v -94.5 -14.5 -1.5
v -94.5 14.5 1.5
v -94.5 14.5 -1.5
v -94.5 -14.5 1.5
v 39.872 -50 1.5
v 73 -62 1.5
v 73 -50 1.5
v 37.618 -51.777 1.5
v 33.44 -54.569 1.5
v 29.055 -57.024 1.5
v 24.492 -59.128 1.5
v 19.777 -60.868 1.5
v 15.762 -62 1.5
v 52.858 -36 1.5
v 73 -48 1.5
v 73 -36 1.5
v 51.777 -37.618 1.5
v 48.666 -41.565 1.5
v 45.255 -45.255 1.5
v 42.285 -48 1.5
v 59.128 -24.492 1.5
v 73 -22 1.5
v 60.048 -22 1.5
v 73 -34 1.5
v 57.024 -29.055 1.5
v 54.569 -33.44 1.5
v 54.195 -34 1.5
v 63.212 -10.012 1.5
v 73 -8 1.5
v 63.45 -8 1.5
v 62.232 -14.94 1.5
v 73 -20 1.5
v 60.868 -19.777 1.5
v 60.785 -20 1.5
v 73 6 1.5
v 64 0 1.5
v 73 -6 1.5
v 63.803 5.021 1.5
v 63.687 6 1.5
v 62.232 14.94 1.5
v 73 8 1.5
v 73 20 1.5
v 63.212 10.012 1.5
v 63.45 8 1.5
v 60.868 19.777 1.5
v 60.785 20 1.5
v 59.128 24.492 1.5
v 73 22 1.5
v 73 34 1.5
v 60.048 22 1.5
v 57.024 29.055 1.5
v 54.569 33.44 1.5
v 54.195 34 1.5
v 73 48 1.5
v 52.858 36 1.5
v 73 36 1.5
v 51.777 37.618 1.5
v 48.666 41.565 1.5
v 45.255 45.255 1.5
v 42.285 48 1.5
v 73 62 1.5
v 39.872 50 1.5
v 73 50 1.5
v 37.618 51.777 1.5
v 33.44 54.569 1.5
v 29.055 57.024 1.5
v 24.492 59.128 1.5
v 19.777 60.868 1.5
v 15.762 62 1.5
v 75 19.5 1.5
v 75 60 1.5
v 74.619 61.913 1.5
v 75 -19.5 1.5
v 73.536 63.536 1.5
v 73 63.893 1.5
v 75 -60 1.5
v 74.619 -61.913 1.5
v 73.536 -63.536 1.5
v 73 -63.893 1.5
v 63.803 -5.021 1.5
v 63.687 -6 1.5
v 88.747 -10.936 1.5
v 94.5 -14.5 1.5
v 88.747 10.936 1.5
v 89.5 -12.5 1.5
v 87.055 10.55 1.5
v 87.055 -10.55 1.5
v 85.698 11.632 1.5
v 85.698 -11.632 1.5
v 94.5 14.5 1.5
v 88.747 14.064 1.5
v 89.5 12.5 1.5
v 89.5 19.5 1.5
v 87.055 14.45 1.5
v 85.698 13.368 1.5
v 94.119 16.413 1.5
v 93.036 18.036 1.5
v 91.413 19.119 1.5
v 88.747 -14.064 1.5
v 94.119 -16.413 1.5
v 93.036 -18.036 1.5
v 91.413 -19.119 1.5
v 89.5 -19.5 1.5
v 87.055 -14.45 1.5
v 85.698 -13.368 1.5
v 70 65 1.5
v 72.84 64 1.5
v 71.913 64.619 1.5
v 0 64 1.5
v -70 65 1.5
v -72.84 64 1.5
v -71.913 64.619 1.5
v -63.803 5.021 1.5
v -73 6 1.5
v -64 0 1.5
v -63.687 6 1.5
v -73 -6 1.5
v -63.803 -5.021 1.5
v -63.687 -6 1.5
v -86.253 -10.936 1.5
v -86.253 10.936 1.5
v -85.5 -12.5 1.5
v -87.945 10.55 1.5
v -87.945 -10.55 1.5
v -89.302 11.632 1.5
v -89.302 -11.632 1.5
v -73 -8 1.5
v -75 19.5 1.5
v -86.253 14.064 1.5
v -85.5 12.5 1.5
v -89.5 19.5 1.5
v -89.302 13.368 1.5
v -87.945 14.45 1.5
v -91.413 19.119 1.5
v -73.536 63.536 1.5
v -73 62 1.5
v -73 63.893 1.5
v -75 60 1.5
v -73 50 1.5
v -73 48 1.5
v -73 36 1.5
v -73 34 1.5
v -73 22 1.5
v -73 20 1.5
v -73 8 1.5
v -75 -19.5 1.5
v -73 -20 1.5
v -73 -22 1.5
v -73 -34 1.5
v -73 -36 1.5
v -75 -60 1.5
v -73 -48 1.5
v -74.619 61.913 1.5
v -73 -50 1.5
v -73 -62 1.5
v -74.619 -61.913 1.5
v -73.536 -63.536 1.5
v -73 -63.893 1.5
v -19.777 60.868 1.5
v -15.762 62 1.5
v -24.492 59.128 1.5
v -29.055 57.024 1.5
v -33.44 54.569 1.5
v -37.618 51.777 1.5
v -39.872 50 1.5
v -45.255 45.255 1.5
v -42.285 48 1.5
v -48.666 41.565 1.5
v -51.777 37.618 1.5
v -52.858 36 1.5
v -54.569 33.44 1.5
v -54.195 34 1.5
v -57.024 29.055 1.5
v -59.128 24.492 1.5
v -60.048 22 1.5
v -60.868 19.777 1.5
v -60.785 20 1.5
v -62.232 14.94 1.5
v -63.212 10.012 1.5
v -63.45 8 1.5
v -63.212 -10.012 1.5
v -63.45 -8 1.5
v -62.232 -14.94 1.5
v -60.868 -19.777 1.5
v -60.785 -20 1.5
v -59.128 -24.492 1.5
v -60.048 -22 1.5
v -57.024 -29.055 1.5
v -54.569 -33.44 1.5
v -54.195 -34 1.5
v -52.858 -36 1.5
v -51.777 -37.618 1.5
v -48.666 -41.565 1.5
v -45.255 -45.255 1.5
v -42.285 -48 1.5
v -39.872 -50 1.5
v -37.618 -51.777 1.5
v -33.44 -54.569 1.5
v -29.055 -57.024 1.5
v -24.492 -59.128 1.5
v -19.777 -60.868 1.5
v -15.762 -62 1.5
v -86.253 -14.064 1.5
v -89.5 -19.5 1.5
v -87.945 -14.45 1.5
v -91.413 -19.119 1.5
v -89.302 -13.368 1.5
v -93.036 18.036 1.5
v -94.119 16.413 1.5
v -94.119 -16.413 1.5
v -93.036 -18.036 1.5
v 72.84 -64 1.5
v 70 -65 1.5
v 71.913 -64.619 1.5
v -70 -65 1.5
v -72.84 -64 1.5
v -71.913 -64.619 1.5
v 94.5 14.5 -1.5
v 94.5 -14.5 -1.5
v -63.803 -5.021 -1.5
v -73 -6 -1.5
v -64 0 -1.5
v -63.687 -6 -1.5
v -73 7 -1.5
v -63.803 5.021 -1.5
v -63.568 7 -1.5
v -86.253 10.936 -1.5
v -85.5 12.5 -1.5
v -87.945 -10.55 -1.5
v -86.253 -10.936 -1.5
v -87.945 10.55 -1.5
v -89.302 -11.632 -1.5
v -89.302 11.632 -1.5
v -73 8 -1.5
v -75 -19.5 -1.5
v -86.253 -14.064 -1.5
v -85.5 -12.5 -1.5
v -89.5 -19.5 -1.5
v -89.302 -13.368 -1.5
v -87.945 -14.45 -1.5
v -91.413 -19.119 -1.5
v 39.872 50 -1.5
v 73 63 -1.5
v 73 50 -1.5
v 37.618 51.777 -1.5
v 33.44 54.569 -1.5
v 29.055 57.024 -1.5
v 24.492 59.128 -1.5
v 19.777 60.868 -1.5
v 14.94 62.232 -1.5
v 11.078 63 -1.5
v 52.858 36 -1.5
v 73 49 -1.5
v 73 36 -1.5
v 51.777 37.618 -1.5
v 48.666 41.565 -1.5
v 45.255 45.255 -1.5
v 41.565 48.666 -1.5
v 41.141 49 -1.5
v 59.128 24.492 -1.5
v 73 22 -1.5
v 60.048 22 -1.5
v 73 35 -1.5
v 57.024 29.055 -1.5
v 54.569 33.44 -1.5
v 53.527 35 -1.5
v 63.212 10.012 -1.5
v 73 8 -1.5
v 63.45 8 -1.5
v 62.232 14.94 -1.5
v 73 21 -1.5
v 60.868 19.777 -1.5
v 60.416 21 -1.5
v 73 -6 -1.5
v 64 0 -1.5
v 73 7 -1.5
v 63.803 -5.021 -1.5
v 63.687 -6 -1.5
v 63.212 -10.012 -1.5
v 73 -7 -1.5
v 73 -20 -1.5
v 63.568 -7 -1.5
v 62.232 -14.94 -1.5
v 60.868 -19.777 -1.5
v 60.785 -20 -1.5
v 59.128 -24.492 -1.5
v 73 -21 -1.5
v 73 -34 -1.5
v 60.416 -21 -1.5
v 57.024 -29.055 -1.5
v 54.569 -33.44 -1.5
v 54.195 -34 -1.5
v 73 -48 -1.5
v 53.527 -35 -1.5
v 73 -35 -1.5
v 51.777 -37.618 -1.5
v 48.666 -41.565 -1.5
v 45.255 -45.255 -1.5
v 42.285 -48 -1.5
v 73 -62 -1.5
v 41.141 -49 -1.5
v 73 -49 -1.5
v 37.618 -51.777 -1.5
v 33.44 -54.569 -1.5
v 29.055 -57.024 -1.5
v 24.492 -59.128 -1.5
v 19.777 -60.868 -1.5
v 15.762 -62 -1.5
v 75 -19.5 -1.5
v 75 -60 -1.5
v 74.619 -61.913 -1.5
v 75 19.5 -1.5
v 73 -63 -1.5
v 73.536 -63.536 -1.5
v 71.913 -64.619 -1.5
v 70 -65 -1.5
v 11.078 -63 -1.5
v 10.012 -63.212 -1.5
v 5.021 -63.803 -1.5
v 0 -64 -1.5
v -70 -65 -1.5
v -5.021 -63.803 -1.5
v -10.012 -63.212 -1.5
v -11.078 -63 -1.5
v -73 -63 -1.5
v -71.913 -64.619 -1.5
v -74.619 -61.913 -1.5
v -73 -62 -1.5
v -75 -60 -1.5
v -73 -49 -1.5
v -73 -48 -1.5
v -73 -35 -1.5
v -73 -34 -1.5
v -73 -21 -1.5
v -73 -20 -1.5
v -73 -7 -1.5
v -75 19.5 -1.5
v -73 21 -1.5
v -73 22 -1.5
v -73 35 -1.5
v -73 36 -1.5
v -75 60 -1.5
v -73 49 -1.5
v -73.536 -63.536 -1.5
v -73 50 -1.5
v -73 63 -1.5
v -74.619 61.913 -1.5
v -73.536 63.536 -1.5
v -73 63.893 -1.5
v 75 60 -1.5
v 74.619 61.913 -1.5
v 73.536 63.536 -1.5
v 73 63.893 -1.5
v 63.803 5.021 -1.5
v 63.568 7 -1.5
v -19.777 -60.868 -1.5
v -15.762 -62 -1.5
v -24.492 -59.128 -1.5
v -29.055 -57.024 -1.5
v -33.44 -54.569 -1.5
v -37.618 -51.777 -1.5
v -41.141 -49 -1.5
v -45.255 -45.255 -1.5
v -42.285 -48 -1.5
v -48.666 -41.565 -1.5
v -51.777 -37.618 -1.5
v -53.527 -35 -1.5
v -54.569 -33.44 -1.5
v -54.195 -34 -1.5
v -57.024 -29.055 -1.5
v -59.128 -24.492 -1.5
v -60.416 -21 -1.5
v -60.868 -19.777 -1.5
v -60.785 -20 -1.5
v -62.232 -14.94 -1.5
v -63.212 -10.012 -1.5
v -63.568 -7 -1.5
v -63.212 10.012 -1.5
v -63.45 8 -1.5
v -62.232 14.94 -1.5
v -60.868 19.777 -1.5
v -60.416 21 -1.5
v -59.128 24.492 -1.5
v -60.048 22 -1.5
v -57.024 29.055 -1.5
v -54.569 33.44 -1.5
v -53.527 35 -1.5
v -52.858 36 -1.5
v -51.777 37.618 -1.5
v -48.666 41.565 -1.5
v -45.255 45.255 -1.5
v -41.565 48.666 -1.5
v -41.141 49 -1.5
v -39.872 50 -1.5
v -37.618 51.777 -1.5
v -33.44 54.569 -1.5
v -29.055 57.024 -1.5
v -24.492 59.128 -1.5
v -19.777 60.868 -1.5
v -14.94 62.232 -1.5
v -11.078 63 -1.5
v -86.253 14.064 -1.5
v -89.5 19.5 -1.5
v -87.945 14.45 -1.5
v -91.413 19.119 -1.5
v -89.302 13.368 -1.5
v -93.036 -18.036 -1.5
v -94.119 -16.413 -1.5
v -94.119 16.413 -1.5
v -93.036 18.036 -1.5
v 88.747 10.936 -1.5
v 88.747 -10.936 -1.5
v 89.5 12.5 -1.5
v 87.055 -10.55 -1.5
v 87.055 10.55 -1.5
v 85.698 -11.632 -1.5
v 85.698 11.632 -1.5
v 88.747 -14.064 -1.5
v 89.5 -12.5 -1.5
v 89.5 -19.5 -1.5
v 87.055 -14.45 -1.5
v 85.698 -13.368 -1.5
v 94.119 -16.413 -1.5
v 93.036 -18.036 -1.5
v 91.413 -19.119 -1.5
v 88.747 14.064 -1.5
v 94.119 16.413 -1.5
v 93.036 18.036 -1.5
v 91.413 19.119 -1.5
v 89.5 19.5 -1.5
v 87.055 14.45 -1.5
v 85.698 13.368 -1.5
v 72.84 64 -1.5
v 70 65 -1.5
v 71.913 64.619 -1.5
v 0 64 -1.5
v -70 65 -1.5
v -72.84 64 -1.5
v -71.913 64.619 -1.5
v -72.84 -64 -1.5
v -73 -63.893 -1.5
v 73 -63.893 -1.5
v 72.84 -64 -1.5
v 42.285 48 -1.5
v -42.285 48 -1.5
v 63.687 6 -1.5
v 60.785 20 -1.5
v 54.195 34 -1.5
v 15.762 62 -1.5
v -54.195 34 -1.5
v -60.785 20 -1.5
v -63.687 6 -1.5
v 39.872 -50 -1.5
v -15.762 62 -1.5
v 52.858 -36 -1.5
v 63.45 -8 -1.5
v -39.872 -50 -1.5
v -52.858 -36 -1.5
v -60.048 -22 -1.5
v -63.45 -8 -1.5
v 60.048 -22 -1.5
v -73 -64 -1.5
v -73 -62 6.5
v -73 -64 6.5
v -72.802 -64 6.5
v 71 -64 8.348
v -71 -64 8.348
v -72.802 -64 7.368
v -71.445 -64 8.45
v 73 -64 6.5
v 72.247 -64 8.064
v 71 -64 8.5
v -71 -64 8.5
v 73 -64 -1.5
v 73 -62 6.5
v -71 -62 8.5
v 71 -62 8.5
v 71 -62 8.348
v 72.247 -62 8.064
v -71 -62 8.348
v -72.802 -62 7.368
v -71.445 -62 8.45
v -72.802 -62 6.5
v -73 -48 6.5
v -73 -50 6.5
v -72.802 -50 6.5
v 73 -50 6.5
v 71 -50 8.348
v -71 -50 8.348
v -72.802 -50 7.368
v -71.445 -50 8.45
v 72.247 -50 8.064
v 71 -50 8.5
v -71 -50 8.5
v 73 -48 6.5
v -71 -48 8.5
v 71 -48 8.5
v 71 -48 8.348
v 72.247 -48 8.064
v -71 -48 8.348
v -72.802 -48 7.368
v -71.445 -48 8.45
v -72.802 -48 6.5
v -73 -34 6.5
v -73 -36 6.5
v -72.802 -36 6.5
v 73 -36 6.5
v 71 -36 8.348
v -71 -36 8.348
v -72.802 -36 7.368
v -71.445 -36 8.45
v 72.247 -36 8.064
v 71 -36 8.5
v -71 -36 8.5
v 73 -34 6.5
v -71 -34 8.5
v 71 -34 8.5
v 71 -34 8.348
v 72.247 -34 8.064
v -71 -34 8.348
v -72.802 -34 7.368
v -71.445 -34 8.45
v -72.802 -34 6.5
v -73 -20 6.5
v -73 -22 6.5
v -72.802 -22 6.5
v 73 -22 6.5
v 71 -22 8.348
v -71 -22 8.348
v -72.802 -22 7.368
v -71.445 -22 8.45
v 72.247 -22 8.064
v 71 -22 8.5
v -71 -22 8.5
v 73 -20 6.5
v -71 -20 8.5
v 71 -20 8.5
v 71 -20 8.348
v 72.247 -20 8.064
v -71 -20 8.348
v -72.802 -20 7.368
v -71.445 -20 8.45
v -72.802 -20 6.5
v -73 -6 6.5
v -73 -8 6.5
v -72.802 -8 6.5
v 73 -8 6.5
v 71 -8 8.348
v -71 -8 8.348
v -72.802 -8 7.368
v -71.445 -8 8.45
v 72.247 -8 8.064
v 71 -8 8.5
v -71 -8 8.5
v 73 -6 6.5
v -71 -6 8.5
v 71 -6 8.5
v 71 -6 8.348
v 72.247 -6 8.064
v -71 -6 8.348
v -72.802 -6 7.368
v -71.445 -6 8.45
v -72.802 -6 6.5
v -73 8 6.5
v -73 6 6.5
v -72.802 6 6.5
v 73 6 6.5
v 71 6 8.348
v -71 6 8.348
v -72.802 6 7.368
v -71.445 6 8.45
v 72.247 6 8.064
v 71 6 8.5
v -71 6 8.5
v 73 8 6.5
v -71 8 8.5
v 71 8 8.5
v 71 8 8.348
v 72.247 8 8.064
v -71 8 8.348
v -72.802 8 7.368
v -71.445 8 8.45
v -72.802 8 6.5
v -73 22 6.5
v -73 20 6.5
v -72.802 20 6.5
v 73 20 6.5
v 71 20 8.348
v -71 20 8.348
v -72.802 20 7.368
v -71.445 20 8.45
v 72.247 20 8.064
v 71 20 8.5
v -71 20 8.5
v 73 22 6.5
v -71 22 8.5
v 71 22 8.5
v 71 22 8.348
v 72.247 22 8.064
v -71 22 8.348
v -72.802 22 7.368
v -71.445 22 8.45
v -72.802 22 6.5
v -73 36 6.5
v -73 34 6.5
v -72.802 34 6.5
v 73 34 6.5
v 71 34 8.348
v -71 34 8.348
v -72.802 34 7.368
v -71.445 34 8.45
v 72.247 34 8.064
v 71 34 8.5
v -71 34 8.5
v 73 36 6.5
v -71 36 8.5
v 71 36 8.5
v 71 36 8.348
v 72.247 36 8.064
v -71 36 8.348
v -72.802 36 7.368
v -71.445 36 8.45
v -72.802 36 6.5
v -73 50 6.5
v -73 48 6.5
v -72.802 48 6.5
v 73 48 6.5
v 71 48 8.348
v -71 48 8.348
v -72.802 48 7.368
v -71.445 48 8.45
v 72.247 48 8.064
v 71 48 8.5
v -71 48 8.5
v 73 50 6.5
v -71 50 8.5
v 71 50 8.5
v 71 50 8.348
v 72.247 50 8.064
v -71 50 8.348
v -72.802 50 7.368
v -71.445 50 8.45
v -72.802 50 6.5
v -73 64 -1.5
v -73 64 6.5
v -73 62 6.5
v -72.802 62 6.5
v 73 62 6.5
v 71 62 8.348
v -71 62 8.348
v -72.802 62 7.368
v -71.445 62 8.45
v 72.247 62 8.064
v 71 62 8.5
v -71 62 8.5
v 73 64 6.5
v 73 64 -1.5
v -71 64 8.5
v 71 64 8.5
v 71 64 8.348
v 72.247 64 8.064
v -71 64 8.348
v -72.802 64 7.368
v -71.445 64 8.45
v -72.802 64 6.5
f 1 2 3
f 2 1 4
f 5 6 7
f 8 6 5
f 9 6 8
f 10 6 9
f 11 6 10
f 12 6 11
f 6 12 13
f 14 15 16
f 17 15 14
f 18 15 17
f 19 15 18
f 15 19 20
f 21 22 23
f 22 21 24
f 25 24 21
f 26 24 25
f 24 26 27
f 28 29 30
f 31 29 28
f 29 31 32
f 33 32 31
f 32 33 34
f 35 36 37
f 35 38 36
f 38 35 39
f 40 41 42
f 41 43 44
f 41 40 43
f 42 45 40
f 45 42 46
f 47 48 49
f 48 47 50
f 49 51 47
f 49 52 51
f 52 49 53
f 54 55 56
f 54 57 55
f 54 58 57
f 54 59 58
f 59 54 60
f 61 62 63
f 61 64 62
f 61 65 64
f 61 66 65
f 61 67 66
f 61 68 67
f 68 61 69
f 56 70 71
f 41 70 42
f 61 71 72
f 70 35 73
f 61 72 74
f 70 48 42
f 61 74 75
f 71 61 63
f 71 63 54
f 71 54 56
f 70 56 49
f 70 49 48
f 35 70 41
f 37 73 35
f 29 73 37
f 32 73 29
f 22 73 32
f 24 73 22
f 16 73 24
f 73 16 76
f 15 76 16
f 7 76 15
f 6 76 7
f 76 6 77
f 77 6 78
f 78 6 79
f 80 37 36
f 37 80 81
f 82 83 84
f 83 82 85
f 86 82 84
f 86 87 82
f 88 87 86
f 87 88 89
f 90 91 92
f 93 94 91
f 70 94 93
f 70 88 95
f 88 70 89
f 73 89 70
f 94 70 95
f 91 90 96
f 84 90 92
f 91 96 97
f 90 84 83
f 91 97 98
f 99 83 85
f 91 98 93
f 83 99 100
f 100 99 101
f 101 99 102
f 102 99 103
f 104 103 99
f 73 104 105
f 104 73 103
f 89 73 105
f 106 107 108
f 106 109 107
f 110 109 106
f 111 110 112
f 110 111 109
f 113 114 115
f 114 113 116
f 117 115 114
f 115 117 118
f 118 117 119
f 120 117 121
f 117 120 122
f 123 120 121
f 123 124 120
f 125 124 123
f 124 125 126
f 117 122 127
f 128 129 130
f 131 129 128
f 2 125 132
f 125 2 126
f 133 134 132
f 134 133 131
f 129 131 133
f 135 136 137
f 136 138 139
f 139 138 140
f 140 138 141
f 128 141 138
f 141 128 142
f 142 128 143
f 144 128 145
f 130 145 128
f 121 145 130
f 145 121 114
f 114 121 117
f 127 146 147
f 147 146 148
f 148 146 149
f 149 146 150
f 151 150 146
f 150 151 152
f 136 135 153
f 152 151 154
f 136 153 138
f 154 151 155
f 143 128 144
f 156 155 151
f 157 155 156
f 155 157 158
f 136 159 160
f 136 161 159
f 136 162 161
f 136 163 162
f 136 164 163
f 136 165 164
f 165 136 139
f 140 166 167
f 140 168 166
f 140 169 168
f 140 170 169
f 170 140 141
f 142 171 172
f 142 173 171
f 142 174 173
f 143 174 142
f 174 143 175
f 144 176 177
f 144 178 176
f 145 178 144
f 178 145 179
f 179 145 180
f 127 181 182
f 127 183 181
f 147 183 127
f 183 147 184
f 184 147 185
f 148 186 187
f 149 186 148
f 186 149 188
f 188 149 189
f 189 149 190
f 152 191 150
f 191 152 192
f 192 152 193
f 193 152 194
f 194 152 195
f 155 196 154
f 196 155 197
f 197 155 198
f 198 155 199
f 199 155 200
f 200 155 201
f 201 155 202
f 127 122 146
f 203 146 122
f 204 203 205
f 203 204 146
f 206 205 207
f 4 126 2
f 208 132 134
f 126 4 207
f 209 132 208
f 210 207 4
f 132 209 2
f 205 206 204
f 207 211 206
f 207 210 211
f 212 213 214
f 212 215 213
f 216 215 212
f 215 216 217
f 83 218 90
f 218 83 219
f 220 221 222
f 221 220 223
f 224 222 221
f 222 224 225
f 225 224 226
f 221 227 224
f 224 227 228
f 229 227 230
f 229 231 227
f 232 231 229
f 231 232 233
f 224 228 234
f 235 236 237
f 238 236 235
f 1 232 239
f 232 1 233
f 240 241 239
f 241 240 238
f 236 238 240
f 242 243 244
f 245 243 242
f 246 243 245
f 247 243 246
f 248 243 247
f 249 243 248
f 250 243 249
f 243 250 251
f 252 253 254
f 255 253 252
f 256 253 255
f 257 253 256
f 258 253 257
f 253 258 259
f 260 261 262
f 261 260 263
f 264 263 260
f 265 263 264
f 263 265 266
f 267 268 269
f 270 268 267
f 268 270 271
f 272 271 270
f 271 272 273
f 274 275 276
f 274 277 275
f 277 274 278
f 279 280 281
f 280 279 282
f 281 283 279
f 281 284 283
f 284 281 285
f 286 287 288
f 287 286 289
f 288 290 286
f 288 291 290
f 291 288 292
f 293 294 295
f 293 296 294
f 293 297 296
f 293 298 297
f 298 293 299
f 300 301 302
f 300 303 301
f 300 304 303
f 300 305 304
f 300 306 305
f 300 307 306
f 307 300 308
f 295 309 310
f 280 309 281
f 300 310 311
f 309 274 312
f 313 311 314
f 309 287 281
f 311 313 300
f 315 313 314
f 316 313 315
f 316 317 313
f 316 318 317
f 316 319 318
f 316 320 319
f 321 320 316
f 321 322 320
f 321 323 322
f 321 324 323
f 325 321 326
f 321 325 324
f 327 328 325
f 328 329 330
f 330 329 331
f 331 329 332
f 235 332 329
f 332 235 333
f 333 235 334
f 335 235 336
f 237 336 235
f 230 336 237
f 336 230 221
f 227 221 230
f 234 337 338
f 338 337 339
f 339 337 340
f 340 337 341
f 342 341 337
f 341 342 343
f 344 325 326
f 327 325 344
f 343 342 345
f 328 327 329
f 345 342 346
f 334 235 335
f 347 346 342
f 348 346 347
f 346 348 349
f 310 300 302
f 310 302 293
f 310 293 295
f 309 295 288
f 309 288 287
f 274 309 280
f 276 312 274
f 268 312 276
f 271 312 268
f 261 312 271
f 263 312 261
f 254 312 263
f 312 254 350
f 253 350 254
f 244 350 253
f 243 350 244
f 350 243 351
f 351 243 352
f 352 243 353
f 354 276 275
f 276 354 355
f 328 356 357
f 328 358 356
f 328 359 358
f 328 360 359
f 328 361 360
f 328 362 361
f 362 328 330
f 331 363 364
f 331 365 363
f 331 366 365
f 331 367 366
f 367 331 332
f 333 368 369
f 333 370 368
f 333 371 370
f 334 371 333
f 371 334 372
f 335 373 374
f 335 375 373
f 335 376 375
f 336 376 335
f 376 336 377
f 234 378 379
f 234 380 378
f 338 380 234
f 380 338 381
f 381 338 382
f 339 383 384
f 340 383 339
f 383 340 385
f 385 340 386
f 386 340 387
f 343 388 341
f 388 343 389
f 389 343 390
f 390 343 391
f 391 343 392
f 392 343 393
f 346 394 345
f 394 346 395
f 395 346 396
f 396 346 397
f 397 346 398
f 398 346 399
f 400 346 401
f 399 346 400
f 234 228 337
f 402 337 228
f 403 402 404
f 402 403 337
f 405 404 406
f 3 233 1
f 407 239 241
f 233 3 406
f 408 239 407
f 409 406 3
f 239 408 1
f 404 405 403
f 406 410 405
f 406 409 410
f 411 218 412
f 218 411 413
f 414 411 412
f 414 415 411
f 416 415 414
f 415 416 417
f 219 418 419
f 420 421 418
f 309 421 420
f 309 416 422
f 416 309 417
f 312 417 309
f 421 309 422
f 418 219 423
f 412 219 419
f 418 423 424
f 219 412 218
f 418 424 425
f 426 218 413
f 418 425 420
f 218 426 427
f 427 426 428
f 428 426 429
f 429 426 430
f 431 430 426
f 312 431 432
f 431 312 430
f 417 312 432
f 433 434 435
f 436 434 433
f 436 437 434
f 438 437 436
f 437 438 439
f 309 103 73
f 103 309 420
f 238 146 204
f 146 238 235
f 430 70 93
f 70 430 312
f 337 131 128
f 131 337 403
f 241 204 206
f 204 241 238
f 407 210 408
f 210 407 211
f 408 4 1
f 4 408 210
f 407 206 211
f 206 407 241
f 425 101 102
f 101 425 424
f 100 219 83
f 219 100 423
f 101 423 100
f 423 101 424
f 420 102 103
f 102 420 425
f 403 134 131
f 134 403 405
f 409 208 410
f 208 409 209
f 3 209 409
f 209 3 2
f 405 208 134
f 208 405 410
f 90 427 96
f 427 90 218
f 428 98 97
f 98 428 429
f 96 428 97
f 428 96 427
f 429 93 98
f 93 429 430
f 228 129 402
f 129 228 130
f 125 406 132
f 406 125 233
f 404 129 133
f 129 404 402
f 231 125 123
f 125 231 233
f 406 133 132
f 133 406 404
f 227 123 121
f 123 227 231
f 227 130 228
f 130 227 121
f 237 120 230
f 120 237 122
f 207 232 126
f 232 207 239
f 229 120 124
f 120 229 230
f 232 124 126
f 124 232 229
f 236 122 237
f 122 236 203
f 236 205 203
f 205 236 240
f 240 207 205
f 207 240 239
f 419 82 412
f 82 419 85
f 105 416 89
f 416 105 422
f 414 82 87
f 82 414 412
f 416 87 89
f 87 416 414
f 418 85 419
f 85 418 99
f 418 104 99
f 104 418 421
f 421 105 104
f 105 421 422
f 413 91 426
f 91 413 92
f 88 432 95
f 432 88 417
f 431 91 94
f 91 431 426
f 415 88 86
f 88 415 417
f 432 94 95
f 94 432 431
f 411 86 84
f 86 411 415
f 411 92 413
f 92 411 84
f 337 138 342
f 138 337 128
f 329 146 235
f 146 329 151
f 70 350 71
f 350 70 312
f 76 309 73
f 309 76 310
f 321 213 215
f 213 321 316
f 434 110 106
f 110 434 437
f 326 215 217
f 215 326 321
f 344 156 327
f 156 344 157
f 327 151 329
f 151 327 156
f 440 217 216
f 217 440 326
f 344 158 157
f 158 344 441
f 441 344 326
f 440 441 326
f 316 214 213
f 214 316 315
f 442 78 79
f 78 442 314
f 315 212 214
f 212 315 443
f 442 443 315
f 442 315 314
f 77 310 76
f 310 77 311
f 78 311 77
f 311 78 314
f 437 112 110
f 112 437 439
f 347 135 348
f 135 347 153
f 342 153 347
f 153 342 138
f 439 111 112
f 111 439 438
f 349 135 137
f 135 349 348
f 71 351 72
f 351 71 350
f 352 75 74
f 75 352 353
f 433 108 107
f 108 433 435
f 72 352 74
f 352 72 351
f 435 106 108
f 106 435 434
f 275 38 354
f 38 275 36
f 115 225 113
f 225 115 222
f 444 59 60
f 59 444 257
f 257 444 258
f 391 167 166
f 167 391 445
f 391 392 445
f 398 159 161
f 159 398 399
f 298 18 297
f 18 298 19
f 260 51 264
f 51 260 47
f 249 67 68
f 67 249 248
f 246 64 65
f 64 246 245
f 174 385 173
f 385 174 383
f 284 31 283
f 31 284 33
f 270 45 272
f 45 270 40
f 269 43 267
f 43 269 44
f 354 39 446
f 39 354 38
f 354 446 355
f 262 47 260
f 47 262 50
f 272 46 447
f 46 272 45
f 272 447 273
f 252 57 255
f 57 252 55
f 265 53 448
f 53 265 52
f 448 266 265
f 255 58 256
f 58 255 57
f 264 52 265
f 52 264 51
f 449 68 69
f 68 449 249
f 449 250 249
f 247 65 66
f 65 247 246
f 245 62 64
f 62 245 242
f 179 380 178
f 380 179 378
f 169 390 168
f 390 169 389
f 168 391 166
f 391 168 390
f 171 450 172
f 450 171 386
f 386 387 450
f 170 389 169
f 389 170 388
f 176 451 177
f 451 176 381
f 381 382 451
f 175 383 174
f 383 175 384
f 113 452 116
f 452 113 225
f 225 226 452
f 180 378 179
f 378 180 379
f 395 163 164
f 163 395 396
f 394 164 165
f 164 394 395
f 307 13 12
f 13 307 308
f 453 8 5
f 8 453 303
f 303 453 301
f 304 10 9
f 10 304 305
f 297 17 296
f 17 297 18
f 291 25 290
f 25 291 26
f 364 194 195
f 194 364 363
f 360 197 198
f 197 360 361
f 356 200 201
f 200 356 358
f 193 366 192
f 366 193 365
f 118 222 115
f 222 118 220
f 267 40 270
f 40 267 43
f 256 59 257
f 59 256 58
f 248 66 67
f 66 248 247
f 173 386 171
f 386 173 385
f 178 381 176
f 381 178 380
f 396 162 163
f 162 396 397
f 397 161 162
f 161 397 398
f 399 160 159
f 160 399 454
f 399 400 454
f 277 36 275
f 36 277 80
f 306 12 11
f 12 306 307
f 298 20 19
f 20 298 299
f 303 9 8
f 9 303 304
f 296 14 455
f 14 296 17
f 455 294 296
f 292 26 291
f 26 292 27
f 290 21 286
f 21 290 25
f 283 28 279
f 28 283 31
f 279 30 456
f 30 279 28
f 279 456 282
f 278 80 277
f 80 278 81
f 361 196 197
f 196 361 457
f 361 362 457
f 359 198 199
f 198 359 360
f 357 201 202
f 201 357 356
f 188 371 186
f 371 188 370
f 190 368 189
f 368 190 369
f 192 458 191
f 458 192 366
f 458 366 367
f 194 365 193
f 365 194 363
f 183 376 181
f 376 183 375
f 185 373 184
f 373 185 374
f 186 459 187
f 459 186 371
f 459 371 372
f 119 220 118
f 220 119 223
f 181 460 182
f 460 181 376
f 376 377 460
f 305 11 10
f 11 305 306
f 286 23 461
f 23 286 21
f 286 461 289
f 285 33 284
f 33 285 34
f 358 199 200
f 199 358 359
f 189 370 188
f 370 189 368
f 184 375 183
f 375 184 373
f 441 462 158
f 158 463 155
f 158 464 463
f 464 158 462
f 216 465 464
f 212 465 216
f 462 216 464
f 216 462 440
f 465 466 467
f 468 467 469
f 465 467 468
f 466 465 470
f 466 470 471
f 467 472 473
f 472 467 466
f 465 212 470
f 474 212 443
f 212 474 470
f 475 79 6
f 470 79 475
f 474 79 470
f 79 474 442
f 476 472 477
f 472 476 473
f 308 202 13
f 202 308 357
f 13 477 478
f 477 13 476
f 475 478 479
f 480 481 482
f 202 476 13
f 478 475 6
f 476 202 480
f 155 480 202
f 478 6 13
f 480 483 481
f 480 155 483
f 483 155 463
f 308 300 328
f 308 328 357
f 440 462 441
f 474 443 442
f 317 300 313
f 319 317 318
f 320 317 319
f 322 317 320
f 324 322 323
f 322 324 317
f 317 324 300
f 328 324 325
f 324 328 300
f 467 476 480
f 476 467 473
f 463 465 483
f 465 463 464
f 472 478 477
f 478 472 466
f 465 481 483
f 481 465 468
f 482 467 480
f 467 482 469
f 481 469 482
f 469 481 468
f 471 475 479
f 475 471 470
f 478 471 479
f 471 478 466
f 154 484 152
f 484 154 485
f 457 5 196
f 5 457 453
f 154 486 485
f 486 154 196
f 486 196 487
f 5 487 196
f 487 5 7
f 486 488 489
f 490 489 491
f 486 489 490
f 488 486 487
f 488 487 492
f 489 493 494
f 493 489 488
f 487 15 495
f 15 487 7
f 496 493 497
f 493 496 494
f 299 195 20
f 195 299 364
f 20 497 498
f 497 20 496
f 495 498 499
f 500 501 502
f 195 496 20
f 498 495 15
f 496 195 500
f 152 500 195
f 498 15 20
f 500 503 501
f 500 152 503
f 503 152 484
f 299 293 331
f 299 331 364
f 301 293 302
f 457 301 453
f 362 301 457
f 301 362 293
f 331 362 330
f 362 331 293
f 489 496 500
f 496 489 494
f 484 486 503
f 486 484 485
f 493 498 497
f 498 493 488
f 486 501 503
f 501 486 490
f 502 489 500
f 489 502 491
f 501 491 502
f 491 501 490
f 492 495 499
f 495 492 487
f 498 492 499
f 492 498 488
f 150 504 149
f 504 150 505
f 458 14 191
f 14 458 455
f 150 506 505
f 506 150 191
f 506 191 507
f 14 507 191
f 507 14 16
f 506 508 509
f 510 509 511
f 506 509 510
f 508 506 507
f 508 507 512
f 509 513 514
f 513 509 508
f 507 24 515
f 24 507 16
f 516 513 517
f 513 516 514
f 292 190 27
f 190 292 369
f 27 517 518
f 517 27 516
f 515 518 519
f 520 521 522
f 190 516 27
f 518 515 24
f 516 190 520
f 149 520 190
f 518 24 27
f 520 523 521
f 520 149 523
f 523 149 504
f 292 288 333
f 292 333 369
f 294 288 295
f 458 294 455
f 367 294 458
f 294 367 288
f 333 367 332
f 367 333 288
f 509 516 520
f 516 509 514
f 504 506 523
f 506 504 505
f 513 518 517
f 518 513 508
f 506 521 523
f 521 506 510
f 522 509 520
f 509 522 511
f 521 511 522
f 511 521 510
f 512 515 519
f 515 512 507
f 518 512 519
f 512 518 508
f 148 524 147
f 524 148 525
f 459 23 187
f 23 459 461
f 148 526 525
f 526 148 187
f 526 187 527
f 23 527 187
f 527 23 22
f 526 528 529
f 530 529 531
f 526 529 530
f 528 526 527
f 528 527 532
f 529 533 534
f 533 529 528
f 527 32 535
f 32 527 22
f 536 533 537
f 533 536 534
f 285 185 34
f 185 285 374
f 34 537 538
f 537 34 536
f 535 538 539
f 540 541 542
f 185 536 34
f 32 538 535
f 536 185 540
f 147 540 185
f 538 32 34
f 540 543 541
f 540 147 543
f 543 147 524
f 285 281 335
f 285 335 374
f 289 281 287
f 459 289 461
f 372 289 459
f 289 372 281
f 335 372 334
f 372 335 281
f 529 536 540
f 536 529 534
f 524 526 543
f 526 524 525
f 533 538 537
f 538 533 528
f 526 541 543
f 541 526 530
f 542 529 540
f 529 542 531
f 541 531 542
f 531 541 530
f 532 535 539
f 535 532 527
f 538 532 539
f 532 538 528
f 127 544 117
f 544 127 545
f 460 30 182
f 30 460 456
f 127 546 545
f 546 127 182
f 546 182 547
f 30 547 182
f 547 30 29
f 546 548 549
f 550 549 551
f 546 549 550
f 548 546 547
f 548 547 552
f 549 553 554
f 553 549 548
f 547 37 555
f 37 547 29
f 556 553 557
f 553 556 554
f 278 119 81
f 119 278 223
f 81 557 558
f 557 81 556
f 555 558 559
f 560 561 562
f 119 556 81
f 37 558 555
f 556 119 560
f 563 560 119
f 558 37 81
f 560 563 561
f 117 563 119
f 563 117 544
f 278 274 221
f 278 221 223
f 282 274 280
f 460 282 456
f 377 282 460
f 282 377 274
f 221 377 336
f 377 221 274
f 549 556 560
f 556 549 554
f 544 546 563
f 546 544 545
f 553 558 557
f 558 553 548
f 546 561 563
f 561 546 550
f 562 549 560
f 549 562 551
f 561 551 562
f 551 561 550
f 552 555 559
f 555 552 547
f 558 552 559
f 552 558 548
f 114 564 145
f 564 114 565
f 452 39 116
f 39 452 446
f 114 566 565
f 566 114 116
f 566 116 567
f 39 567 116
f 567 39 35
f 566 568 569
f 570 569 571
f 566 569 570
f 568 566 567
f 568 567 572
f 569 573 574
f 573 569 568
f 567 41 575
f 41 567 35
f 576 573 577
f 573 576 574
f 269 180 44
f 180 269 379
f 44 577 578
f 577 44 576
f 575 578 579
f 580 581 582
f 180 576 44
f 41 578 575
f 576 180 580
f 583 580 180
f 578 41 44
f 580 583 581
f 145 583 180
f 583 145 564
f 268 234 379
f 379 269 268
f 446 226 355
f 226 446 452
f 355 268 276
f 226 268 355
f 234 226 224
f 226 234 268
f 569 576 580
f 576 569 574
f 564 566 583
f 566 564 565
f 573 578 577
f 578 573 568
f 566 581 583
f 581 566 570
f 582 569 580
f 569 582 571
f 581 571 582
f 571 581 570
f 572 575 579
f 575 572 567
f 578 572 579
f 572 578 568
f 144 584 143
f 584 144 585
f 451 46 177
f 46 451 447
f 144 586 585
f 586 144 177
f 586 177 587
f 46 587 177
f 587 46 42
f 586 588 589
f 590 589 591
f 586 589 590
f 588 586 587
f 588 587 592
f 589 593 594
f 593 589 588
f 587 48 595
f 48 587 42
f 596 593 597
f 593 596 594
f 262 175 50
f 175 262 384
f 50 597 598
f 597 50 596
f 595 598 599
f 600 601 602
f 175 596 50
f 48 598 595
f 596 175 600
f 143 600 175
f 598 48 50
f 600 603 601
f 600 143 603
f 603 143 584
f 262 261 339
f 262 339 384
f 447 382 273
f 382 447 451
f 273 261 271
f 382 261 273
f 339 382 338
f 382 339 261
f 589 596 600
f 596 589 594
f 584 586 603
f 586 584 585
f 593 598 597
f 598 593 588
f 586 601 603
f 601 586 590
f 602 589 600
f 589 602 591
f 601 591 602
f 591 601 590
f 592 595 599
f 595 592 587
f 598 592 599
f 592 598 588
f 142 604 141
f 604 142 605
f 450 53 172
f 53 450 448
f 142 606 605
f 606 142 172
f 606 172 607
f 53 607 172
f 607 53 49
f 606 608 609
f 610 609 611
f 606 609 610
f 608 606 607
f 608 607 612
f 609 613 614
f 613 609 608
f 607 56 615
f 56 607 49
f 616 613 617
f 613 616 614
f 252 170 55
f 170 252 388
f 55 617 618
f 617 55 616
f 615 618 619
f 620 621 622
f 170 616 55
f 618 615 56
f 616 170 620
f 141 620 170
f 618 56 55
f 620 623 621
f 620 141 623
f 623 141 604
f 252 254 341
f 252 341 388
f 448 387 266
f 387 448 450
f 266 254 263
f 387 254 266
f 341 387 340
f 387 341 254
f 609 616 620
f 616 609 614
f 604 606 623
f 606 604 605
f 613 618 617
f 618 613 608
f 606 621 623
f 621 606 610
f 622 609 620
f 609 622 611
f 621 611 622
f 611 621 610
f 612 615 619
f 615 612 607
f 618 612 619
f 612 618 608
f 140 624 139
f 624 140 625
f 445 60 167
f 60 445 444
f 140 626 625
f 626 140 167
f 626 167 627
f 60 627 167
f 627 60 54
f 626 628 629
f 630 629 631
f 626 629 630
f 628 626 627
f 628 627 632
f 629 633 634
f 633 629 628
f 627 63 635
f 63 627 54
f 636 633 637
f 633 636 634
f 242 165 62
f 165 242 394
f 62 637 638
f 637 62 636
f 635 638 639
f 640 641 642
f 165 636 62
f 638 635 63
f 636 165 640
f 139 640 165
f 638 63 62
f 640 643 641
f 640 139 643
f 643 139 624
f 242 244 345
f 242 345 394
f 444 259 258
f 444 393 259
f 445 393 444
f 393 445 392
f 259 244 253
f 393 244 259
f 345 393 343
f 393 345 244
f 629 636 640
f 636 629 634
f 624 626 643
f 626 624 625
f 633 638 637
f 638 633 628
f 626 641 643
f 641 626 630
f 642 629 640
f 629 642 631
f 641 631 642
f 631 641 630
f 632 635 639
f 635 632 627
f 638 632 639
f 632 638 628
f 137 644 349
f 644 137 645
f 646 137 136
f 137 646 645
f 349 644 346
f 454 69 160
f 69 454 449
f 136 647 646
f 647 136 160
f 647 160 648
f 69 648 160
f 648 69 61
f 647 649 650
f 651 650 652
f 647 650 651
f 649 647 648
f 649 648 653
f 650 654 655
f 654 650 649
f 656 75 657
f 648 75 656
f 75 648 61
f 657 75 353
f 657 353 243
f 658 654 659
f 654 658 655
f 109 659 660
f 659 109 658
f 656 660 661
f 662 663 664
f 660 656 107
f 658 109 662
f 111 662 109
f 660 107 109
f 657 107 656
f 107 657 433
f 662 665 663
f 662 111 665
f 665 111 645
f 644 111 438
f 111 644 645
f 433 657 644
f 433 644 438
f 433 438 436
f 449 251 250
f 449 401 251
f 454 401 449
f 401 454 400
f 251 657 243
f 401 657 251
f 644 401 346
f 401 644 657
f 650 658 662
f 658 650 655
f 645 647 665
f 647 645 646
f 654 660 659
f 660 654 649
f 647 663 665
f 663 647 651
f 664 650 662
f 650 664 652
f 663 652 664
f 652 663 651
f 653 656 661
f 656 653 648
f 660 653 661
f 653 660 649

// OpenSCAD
extra = 2.0;

module plate(width,depth,height, cornerRadius)
{
    translate([-width/2.0, -depth/2.0, -height/2.0])
    {
        difference()
        {
            cube([width,depth,height]);
            translate([-extra,-extra,-extra])
            {
                cube([cornerRadius+extra,cornerRadius+extra,height+2*extra]);
            }
            translate([-extra,depth-cornerRadius,-extra])
            {
                cube([cornerRadius+extra,cornerRadius+extra,height+2*extra]);
            }
            translate([width-cornerRadius,depth-cornerRadius,-extra])
            {
                cube([cornerRadius+extra,cornerRadius+extra,height+2*extra]);
            }
            translate([width-cornerRadius,-extra,-extra])
            {
                cube([cornerRadius+extra,cornerRadius+extra,height+2*extra]);
            }
        }
        translate([cornerRadius,cornerRadius,0]) cylinder(r=cornerRadius,h=height);
        translate([width-cornerRadius,cornerRadius,0]) cylinder(r=cornerRadius,h=height);
        translate([cornerRadius,depth-cornerRadius,0]) cylinder(r=cornerRadius,h=height);
        translate([width-cornerRadius,depth-cornerRadius,0]) cylinder(r=cornerRadius,h=height);
    }
}   

module fin(width,depth,height, cornerRadius)
{
    translate([-width/2.0, -depth/2.0, -height/2.0])
    {
        difference()
        {
            cube([width,depth,height]);
            translate([-extra,depth-cornerRadius,-extra])
            {
                cube([cornerRadius+extra,cornerRadius+extra,height+2*extra]);
            }
            translate([width-cornerRadius,depth-cornerRadius,-extra])
            {
                cube([cornerRadius+extra,cornerRadius+extra,height+2*extra]);
            }
        }
        translate([cornerRadius,depth-cornerRadius,0]) cylinder(r=cornerRadius,h=height);
        translate([width-cornerRadius,depth-cornerRadius,0]) cylinder(r=cornerRadius,h=height);
    }
}   



module makeHoleCylinders(positions, diameter, depth, extra)
{
    for (a = [ 0 : len(positions) - 1 ]) 
    {
        point=positions[a];
        translate([point[0],point[1],-extra]){
            cylinder(r=diameter/2.0,h=depth+2*extra);
        }
    }
}

module makeMountingHoles(holeXSpacing, holeYSpacing, diameter, depth, extra)
{
    halfX=holeXSpacing/2.0;
    halfY=holeYSpacing/2.0;
    
    mountingHoles = [[-halfX,halfY],[-halfX,-halfY],[halfX,-halfY],[halfX,halfY]];
    
    makeHoleCylinders(mountingHoles,diameter, depth, extra);
}

module mountingStrap(holeXSpacing,holeYSpacing,thickness, holeDiameter, margin, cornerRadius)
{
    width = holeXSpacing+(2*margin);
    depth = holeYSpacing+(2*margin);
    difference()
    {
        plate(width, depth, thickness, cornerRadius);
        makeMountingHoles(holeXSpacing, holeYSpacing, holeDiameter, thickness, extra);
    }
}

module straightFins(plateWidth, plateDepth, finMargin, finHeight, finDepth, noOfFins, thickness)
{
    finSpace = plateDepth - (2*finMargin);
    
    finGap = finSpace/(noOfFins-1);
    
    finPos = -(plateDepth/2.0)+finMargin;
    
    for (a = [ 0 : noOfFins-1 ]) 
    {
        translate([0,finPos+a*finGap,finHeight/2.0-thickness/2.0])
        {
            rotate([90,0,0])
            {
                fin(plateWidth-(2*finMargin), finHeight, finDepth, 2.0);
            }
        }
    }
}


module curvedFins(plateDiameter, finMargin, finHeight, finDepth, noOfFins, thickness)
{
    finSpace = plateDiameter - (2*finMargin);
    
    finGap = finSpace/(noOfFins-1);
    
    finPos = -(plateDiameter/2.0)+finMargin;
    
    for (a = [ 0 : noOfFins-1 ]) 
    {
        translate([0,finPos+a*finGap,finHeight/2.0-thickness/2.0])
        {
            rotate([90,0,0])
            {
                fin(finSpace, finHeight, finDepth, 2.0);
            }
        }
    }
}



module speakerCover()
{
    holeXSpacing=175.0;
    holeYSpacing=25.0;
    thickness=3.0;
    margin=7.0;
    cornerRadius=5.0;
    holeDiameter=4.0;
    
    speakerHoleDiameter = 128.0;
    
    plateWidth=150.0;
    plateDepth=130.0;
    
    finHeight=10.0;
    finDepth=2.0;
    finMargin=2.0;
    noOfFins=10;
    
    union()
    {
        difference()
        {
            union()
            {
                mountingStrap(holeXSpacing, holeYSpacing, thickness, holeDiameter, margin,cornerRadius);
                plate(plateWidth,plateDepth,thickness, cornerRadius);
            }
            
            translate([0,0,-thickness/2.0-extra])cylinder(h=thickness+(2*extra), r=speakerHoleDiameter/2.0,$fn = 80);
        }
        straightFins(plateWidth, plateDepth, finMargin, finHeight, finDepth, noOfFins, thickness);
    }
}

module pushPin()
{
    boxHoleTopDiam=5.65;
    boxHoleBottomDiam=5.75;
    boxHoleDepth=6;

    screwHoleOuterDiam=7.0;
    screwHoleDiam=3.25;
    screwHoleDepth=4.0;
    extra=0.5;
    
    difference()
    {
        union()
        {
             cylinder(r1=boxHoleBottomDiam/2.0,r2=boxHoleTopDiam/2.0,h=boxHoleDepth,$fn = 80);
        }
        translate([0,0,-extra])
        {
            cylinder(r=screwHoleDiam/2.0,h=screwHoleDepth+extra,$fn = 80);        
        }
    }
}

color("red")
//pushPin();
speakerCover();
